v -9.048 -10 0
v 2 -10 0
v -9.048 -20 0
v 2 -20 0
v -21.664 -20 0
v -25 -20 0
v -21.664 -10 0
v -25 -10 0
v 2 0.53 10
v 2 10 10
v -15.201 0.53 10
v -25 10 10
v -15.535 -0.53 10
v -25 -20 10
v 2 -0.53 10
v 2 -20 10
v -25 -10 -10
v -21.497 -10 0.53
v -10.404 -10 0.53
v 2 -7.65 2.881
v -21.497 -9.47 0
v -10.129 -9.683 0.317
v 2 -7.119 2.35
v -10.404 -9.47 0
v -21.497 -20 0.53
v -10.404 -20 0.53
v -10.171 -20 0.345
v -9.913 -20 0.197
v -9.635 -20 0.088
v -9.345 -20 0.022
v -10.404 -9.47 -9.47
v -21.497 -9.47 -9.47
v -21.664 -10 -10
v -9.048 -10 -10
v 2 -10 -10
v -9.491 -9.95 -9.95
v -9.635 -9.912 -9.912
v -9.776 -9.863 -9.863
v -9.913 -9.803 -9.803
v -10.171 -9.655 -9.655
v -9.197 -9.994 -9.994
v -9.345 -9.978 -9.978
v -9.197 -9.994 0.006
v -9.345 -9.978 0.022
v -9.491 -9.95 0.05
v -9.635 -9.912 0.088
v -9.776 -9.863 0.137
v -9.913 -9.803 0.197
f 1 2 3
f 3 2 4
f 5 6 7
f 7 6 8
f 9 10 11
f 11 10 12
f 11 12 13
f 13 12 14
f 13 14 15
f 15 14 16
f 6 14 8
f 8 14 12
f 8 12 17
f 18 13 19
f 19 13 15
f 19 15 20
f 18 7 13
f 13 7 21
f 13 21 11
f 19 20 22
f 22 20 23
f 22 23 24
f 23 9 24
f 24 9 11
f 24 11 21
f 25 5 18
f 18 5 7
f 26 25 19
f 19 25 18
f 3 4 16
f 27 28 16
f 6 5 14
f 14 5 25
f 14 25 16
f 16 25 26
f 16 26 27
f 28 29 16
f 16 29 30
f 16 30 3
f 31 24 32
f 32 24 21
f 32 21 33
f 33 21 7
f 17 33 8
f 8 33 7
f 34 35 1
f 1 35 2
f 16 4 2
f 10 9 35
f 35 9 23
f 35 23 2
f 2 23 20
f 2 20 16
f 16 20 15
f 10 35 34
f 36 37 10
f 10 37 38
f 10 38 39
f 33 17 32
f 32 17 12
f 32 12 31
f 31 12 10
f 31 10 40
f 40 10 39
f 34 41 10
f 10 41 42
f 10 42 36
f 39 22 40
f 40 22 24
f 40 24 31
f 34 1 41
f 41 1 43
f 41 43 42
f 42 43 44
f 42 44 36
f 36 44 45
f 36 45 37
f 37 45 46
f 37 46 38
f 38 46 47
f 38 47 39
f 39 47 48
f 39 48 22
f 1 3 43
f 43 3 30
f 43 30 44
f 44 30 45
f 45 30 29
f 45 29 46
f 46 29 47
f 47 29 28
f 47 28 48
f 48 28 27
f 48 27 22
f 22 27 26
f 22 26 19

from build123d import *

# Parameters (mm, degrees)
SKETCH1_W           = 50
SKETCH1_H           = 20
BOSS_EXTRUDE1_DEPTH = 10
CUT_EXTRUDE1_DEPTH  = 0.375
BOSS_EXTRUDE3_DEPTH = 10
BOSS_EXTRUDE4_DEPTH = 10
SKETCH5_W           = 25.687022838
SKETCH5_H           = 30.894675689
CUT_EXTRUDE3_DEPTH  = 41.311288741
CUT_EXTRUDE4_DEPTH  = 36.057096286
FILLET1_R           = 2
FILLET2_R           = 2


with BuildPart() as part:
    # Sketch1 → Boss-Extrude1 (new body)
    with BuildSketch(Plane.XY):
        Rectangle(SKETCH1_W, SKETCH1_H)
    extrude(amount=BOSS_EXTRUDE1_DEPTH)

    # Sketch2 → Cut-Extrude1 (cut, symmetric)
    with BuildSketch(Plane(origin=(0, -5, 5), x_dir=(1, 0, 0), z_dir=(0, -0.7071067811865464, 0.7071067811865488))):
        Polygon((-23, -10.071067812), (35.375550351, 5.570613762), (29.163893269, 28.752833593), (-10.439065609, 18.141252744), align=None)
    extrude(amount=CUT_EXTRUDE1_DEPTH, both=True, mode=Mode.SUBTRACT)

    # Sketch3 → Boss-Extrude3 (add)
    with BuildSketch(Plane.XZ.offset(10)):
        Polygon((-25, 0), (-21.664313944, 0), (-21.497353187, 0.530330086), (-10.404328524, 0.530330086), (-11.803847577, 0), (25, 0), (25, 10), (-25, 10), align=None)
    extrude(amount=BOSS_EXTRUDE3_DEPTH)

    # Sketch4 → Boss-Extrude4 (add)
    with BuildSketch(Plane(origin=(0, 0, 0), x_dir=(-1, 0, 0), z_dir=(0, 0, -1))):
        Polygon((10.404328524, -9.469669914), (21.497353187, -9.469669914), (21.664313944, -10), (25, -10), (25, 10), (-25, 10), (-25, -10), (11.803847577, -10), align=None)
    extrude(amount=BOSS_EXTRUDE4_DEPTH)

    # Sketch5 → Cut-Extrude3 (cut, through all)
    with BuildSketch(Plane.XZ.offset(20)):
        with Locations((14.843511419, 0.908787841)):
            Rectangle(SKETCH5_W, SKETCH5_H)
    extrude(amount=-CUT_EXTRUDE3_DEPTH, mode=Mode.SUBTRACT)

    # Sketch6 → Cut-Extrude4 (cut, through all)
    with BuildSketch(Plane(origin=(2, 0, 0), x_dir=(0, 0, -1), z_dir=(1, 0, 0))):
        Polygon((-10, 10), (10, -10), (10, 10), align=None)
    extrude(amount=-CUT_EXTRUDE4_DEPTH, mode=Mode.SUBTRACT)

    # Fillet1
    # the kernel refuses this fillet: 2 mm, written as the material it takes off along each edge
    with BuildSketch(Plane(origin=(-11.803847577, -10, 0), x_dir=(1, 0, 0), z_dir=(0, 0, -1))) as fillet1_piece_1:
        with BuildLine():
            CenterArc((2.756010978, -2), FILLET1_R, 90, 42.706727968)
            Line((1.399519053, -0.530330086), (0, 0))
            Line((0, 0), (2.756010978, 0))
        make_face()
    extrude(amount=16.890027445, mode=Mode.SUBTRACT)

    # Fillet2
    # the kernel refuses this fillet: 2 mm, written as the material it takes off along each edge
    with BuildSketch(Plane(origin=(-11.803847577, -3.109972555, 0), x_dir=(1, 0, 0), z_dir=(0, -1, 0))) as fillet2_piece_1_section:
        with BuildLine():
            CenterArc((2.756010978, 2), FILLET2_R, 227.293272032, 42.706727968)
            Line((1.399519053, 0.530330086), (0, 0))
            Line((0, 0), (2.756010978, 0))
        make_face()
    fillet2_piece_1 = extrude(amount=23.780054891, mode=Mode.PRIVATE)
    fillet2_piece_1 = split(fillet2_piece_1, bisect_by=Plane(origin=(-9.777530732, -9.469669914, 0.133569591), z_dir=(0, -1, 0)), keep=Keep.TOP, mode=Mode.PRIVATE)
    fillet2_piece_1 = fillet2_piece_1 - Plane(origin=(-9.047836599, -8, 0.133569591), x_dir=(1, 0, 0), z_dir=(0, 0, 1)) * Cylinder(2, 59, mode=Mode.PRIVATE)
    add(fillet2_piece_1, mode=Mode.SUBTRACT)


solid = part.part
